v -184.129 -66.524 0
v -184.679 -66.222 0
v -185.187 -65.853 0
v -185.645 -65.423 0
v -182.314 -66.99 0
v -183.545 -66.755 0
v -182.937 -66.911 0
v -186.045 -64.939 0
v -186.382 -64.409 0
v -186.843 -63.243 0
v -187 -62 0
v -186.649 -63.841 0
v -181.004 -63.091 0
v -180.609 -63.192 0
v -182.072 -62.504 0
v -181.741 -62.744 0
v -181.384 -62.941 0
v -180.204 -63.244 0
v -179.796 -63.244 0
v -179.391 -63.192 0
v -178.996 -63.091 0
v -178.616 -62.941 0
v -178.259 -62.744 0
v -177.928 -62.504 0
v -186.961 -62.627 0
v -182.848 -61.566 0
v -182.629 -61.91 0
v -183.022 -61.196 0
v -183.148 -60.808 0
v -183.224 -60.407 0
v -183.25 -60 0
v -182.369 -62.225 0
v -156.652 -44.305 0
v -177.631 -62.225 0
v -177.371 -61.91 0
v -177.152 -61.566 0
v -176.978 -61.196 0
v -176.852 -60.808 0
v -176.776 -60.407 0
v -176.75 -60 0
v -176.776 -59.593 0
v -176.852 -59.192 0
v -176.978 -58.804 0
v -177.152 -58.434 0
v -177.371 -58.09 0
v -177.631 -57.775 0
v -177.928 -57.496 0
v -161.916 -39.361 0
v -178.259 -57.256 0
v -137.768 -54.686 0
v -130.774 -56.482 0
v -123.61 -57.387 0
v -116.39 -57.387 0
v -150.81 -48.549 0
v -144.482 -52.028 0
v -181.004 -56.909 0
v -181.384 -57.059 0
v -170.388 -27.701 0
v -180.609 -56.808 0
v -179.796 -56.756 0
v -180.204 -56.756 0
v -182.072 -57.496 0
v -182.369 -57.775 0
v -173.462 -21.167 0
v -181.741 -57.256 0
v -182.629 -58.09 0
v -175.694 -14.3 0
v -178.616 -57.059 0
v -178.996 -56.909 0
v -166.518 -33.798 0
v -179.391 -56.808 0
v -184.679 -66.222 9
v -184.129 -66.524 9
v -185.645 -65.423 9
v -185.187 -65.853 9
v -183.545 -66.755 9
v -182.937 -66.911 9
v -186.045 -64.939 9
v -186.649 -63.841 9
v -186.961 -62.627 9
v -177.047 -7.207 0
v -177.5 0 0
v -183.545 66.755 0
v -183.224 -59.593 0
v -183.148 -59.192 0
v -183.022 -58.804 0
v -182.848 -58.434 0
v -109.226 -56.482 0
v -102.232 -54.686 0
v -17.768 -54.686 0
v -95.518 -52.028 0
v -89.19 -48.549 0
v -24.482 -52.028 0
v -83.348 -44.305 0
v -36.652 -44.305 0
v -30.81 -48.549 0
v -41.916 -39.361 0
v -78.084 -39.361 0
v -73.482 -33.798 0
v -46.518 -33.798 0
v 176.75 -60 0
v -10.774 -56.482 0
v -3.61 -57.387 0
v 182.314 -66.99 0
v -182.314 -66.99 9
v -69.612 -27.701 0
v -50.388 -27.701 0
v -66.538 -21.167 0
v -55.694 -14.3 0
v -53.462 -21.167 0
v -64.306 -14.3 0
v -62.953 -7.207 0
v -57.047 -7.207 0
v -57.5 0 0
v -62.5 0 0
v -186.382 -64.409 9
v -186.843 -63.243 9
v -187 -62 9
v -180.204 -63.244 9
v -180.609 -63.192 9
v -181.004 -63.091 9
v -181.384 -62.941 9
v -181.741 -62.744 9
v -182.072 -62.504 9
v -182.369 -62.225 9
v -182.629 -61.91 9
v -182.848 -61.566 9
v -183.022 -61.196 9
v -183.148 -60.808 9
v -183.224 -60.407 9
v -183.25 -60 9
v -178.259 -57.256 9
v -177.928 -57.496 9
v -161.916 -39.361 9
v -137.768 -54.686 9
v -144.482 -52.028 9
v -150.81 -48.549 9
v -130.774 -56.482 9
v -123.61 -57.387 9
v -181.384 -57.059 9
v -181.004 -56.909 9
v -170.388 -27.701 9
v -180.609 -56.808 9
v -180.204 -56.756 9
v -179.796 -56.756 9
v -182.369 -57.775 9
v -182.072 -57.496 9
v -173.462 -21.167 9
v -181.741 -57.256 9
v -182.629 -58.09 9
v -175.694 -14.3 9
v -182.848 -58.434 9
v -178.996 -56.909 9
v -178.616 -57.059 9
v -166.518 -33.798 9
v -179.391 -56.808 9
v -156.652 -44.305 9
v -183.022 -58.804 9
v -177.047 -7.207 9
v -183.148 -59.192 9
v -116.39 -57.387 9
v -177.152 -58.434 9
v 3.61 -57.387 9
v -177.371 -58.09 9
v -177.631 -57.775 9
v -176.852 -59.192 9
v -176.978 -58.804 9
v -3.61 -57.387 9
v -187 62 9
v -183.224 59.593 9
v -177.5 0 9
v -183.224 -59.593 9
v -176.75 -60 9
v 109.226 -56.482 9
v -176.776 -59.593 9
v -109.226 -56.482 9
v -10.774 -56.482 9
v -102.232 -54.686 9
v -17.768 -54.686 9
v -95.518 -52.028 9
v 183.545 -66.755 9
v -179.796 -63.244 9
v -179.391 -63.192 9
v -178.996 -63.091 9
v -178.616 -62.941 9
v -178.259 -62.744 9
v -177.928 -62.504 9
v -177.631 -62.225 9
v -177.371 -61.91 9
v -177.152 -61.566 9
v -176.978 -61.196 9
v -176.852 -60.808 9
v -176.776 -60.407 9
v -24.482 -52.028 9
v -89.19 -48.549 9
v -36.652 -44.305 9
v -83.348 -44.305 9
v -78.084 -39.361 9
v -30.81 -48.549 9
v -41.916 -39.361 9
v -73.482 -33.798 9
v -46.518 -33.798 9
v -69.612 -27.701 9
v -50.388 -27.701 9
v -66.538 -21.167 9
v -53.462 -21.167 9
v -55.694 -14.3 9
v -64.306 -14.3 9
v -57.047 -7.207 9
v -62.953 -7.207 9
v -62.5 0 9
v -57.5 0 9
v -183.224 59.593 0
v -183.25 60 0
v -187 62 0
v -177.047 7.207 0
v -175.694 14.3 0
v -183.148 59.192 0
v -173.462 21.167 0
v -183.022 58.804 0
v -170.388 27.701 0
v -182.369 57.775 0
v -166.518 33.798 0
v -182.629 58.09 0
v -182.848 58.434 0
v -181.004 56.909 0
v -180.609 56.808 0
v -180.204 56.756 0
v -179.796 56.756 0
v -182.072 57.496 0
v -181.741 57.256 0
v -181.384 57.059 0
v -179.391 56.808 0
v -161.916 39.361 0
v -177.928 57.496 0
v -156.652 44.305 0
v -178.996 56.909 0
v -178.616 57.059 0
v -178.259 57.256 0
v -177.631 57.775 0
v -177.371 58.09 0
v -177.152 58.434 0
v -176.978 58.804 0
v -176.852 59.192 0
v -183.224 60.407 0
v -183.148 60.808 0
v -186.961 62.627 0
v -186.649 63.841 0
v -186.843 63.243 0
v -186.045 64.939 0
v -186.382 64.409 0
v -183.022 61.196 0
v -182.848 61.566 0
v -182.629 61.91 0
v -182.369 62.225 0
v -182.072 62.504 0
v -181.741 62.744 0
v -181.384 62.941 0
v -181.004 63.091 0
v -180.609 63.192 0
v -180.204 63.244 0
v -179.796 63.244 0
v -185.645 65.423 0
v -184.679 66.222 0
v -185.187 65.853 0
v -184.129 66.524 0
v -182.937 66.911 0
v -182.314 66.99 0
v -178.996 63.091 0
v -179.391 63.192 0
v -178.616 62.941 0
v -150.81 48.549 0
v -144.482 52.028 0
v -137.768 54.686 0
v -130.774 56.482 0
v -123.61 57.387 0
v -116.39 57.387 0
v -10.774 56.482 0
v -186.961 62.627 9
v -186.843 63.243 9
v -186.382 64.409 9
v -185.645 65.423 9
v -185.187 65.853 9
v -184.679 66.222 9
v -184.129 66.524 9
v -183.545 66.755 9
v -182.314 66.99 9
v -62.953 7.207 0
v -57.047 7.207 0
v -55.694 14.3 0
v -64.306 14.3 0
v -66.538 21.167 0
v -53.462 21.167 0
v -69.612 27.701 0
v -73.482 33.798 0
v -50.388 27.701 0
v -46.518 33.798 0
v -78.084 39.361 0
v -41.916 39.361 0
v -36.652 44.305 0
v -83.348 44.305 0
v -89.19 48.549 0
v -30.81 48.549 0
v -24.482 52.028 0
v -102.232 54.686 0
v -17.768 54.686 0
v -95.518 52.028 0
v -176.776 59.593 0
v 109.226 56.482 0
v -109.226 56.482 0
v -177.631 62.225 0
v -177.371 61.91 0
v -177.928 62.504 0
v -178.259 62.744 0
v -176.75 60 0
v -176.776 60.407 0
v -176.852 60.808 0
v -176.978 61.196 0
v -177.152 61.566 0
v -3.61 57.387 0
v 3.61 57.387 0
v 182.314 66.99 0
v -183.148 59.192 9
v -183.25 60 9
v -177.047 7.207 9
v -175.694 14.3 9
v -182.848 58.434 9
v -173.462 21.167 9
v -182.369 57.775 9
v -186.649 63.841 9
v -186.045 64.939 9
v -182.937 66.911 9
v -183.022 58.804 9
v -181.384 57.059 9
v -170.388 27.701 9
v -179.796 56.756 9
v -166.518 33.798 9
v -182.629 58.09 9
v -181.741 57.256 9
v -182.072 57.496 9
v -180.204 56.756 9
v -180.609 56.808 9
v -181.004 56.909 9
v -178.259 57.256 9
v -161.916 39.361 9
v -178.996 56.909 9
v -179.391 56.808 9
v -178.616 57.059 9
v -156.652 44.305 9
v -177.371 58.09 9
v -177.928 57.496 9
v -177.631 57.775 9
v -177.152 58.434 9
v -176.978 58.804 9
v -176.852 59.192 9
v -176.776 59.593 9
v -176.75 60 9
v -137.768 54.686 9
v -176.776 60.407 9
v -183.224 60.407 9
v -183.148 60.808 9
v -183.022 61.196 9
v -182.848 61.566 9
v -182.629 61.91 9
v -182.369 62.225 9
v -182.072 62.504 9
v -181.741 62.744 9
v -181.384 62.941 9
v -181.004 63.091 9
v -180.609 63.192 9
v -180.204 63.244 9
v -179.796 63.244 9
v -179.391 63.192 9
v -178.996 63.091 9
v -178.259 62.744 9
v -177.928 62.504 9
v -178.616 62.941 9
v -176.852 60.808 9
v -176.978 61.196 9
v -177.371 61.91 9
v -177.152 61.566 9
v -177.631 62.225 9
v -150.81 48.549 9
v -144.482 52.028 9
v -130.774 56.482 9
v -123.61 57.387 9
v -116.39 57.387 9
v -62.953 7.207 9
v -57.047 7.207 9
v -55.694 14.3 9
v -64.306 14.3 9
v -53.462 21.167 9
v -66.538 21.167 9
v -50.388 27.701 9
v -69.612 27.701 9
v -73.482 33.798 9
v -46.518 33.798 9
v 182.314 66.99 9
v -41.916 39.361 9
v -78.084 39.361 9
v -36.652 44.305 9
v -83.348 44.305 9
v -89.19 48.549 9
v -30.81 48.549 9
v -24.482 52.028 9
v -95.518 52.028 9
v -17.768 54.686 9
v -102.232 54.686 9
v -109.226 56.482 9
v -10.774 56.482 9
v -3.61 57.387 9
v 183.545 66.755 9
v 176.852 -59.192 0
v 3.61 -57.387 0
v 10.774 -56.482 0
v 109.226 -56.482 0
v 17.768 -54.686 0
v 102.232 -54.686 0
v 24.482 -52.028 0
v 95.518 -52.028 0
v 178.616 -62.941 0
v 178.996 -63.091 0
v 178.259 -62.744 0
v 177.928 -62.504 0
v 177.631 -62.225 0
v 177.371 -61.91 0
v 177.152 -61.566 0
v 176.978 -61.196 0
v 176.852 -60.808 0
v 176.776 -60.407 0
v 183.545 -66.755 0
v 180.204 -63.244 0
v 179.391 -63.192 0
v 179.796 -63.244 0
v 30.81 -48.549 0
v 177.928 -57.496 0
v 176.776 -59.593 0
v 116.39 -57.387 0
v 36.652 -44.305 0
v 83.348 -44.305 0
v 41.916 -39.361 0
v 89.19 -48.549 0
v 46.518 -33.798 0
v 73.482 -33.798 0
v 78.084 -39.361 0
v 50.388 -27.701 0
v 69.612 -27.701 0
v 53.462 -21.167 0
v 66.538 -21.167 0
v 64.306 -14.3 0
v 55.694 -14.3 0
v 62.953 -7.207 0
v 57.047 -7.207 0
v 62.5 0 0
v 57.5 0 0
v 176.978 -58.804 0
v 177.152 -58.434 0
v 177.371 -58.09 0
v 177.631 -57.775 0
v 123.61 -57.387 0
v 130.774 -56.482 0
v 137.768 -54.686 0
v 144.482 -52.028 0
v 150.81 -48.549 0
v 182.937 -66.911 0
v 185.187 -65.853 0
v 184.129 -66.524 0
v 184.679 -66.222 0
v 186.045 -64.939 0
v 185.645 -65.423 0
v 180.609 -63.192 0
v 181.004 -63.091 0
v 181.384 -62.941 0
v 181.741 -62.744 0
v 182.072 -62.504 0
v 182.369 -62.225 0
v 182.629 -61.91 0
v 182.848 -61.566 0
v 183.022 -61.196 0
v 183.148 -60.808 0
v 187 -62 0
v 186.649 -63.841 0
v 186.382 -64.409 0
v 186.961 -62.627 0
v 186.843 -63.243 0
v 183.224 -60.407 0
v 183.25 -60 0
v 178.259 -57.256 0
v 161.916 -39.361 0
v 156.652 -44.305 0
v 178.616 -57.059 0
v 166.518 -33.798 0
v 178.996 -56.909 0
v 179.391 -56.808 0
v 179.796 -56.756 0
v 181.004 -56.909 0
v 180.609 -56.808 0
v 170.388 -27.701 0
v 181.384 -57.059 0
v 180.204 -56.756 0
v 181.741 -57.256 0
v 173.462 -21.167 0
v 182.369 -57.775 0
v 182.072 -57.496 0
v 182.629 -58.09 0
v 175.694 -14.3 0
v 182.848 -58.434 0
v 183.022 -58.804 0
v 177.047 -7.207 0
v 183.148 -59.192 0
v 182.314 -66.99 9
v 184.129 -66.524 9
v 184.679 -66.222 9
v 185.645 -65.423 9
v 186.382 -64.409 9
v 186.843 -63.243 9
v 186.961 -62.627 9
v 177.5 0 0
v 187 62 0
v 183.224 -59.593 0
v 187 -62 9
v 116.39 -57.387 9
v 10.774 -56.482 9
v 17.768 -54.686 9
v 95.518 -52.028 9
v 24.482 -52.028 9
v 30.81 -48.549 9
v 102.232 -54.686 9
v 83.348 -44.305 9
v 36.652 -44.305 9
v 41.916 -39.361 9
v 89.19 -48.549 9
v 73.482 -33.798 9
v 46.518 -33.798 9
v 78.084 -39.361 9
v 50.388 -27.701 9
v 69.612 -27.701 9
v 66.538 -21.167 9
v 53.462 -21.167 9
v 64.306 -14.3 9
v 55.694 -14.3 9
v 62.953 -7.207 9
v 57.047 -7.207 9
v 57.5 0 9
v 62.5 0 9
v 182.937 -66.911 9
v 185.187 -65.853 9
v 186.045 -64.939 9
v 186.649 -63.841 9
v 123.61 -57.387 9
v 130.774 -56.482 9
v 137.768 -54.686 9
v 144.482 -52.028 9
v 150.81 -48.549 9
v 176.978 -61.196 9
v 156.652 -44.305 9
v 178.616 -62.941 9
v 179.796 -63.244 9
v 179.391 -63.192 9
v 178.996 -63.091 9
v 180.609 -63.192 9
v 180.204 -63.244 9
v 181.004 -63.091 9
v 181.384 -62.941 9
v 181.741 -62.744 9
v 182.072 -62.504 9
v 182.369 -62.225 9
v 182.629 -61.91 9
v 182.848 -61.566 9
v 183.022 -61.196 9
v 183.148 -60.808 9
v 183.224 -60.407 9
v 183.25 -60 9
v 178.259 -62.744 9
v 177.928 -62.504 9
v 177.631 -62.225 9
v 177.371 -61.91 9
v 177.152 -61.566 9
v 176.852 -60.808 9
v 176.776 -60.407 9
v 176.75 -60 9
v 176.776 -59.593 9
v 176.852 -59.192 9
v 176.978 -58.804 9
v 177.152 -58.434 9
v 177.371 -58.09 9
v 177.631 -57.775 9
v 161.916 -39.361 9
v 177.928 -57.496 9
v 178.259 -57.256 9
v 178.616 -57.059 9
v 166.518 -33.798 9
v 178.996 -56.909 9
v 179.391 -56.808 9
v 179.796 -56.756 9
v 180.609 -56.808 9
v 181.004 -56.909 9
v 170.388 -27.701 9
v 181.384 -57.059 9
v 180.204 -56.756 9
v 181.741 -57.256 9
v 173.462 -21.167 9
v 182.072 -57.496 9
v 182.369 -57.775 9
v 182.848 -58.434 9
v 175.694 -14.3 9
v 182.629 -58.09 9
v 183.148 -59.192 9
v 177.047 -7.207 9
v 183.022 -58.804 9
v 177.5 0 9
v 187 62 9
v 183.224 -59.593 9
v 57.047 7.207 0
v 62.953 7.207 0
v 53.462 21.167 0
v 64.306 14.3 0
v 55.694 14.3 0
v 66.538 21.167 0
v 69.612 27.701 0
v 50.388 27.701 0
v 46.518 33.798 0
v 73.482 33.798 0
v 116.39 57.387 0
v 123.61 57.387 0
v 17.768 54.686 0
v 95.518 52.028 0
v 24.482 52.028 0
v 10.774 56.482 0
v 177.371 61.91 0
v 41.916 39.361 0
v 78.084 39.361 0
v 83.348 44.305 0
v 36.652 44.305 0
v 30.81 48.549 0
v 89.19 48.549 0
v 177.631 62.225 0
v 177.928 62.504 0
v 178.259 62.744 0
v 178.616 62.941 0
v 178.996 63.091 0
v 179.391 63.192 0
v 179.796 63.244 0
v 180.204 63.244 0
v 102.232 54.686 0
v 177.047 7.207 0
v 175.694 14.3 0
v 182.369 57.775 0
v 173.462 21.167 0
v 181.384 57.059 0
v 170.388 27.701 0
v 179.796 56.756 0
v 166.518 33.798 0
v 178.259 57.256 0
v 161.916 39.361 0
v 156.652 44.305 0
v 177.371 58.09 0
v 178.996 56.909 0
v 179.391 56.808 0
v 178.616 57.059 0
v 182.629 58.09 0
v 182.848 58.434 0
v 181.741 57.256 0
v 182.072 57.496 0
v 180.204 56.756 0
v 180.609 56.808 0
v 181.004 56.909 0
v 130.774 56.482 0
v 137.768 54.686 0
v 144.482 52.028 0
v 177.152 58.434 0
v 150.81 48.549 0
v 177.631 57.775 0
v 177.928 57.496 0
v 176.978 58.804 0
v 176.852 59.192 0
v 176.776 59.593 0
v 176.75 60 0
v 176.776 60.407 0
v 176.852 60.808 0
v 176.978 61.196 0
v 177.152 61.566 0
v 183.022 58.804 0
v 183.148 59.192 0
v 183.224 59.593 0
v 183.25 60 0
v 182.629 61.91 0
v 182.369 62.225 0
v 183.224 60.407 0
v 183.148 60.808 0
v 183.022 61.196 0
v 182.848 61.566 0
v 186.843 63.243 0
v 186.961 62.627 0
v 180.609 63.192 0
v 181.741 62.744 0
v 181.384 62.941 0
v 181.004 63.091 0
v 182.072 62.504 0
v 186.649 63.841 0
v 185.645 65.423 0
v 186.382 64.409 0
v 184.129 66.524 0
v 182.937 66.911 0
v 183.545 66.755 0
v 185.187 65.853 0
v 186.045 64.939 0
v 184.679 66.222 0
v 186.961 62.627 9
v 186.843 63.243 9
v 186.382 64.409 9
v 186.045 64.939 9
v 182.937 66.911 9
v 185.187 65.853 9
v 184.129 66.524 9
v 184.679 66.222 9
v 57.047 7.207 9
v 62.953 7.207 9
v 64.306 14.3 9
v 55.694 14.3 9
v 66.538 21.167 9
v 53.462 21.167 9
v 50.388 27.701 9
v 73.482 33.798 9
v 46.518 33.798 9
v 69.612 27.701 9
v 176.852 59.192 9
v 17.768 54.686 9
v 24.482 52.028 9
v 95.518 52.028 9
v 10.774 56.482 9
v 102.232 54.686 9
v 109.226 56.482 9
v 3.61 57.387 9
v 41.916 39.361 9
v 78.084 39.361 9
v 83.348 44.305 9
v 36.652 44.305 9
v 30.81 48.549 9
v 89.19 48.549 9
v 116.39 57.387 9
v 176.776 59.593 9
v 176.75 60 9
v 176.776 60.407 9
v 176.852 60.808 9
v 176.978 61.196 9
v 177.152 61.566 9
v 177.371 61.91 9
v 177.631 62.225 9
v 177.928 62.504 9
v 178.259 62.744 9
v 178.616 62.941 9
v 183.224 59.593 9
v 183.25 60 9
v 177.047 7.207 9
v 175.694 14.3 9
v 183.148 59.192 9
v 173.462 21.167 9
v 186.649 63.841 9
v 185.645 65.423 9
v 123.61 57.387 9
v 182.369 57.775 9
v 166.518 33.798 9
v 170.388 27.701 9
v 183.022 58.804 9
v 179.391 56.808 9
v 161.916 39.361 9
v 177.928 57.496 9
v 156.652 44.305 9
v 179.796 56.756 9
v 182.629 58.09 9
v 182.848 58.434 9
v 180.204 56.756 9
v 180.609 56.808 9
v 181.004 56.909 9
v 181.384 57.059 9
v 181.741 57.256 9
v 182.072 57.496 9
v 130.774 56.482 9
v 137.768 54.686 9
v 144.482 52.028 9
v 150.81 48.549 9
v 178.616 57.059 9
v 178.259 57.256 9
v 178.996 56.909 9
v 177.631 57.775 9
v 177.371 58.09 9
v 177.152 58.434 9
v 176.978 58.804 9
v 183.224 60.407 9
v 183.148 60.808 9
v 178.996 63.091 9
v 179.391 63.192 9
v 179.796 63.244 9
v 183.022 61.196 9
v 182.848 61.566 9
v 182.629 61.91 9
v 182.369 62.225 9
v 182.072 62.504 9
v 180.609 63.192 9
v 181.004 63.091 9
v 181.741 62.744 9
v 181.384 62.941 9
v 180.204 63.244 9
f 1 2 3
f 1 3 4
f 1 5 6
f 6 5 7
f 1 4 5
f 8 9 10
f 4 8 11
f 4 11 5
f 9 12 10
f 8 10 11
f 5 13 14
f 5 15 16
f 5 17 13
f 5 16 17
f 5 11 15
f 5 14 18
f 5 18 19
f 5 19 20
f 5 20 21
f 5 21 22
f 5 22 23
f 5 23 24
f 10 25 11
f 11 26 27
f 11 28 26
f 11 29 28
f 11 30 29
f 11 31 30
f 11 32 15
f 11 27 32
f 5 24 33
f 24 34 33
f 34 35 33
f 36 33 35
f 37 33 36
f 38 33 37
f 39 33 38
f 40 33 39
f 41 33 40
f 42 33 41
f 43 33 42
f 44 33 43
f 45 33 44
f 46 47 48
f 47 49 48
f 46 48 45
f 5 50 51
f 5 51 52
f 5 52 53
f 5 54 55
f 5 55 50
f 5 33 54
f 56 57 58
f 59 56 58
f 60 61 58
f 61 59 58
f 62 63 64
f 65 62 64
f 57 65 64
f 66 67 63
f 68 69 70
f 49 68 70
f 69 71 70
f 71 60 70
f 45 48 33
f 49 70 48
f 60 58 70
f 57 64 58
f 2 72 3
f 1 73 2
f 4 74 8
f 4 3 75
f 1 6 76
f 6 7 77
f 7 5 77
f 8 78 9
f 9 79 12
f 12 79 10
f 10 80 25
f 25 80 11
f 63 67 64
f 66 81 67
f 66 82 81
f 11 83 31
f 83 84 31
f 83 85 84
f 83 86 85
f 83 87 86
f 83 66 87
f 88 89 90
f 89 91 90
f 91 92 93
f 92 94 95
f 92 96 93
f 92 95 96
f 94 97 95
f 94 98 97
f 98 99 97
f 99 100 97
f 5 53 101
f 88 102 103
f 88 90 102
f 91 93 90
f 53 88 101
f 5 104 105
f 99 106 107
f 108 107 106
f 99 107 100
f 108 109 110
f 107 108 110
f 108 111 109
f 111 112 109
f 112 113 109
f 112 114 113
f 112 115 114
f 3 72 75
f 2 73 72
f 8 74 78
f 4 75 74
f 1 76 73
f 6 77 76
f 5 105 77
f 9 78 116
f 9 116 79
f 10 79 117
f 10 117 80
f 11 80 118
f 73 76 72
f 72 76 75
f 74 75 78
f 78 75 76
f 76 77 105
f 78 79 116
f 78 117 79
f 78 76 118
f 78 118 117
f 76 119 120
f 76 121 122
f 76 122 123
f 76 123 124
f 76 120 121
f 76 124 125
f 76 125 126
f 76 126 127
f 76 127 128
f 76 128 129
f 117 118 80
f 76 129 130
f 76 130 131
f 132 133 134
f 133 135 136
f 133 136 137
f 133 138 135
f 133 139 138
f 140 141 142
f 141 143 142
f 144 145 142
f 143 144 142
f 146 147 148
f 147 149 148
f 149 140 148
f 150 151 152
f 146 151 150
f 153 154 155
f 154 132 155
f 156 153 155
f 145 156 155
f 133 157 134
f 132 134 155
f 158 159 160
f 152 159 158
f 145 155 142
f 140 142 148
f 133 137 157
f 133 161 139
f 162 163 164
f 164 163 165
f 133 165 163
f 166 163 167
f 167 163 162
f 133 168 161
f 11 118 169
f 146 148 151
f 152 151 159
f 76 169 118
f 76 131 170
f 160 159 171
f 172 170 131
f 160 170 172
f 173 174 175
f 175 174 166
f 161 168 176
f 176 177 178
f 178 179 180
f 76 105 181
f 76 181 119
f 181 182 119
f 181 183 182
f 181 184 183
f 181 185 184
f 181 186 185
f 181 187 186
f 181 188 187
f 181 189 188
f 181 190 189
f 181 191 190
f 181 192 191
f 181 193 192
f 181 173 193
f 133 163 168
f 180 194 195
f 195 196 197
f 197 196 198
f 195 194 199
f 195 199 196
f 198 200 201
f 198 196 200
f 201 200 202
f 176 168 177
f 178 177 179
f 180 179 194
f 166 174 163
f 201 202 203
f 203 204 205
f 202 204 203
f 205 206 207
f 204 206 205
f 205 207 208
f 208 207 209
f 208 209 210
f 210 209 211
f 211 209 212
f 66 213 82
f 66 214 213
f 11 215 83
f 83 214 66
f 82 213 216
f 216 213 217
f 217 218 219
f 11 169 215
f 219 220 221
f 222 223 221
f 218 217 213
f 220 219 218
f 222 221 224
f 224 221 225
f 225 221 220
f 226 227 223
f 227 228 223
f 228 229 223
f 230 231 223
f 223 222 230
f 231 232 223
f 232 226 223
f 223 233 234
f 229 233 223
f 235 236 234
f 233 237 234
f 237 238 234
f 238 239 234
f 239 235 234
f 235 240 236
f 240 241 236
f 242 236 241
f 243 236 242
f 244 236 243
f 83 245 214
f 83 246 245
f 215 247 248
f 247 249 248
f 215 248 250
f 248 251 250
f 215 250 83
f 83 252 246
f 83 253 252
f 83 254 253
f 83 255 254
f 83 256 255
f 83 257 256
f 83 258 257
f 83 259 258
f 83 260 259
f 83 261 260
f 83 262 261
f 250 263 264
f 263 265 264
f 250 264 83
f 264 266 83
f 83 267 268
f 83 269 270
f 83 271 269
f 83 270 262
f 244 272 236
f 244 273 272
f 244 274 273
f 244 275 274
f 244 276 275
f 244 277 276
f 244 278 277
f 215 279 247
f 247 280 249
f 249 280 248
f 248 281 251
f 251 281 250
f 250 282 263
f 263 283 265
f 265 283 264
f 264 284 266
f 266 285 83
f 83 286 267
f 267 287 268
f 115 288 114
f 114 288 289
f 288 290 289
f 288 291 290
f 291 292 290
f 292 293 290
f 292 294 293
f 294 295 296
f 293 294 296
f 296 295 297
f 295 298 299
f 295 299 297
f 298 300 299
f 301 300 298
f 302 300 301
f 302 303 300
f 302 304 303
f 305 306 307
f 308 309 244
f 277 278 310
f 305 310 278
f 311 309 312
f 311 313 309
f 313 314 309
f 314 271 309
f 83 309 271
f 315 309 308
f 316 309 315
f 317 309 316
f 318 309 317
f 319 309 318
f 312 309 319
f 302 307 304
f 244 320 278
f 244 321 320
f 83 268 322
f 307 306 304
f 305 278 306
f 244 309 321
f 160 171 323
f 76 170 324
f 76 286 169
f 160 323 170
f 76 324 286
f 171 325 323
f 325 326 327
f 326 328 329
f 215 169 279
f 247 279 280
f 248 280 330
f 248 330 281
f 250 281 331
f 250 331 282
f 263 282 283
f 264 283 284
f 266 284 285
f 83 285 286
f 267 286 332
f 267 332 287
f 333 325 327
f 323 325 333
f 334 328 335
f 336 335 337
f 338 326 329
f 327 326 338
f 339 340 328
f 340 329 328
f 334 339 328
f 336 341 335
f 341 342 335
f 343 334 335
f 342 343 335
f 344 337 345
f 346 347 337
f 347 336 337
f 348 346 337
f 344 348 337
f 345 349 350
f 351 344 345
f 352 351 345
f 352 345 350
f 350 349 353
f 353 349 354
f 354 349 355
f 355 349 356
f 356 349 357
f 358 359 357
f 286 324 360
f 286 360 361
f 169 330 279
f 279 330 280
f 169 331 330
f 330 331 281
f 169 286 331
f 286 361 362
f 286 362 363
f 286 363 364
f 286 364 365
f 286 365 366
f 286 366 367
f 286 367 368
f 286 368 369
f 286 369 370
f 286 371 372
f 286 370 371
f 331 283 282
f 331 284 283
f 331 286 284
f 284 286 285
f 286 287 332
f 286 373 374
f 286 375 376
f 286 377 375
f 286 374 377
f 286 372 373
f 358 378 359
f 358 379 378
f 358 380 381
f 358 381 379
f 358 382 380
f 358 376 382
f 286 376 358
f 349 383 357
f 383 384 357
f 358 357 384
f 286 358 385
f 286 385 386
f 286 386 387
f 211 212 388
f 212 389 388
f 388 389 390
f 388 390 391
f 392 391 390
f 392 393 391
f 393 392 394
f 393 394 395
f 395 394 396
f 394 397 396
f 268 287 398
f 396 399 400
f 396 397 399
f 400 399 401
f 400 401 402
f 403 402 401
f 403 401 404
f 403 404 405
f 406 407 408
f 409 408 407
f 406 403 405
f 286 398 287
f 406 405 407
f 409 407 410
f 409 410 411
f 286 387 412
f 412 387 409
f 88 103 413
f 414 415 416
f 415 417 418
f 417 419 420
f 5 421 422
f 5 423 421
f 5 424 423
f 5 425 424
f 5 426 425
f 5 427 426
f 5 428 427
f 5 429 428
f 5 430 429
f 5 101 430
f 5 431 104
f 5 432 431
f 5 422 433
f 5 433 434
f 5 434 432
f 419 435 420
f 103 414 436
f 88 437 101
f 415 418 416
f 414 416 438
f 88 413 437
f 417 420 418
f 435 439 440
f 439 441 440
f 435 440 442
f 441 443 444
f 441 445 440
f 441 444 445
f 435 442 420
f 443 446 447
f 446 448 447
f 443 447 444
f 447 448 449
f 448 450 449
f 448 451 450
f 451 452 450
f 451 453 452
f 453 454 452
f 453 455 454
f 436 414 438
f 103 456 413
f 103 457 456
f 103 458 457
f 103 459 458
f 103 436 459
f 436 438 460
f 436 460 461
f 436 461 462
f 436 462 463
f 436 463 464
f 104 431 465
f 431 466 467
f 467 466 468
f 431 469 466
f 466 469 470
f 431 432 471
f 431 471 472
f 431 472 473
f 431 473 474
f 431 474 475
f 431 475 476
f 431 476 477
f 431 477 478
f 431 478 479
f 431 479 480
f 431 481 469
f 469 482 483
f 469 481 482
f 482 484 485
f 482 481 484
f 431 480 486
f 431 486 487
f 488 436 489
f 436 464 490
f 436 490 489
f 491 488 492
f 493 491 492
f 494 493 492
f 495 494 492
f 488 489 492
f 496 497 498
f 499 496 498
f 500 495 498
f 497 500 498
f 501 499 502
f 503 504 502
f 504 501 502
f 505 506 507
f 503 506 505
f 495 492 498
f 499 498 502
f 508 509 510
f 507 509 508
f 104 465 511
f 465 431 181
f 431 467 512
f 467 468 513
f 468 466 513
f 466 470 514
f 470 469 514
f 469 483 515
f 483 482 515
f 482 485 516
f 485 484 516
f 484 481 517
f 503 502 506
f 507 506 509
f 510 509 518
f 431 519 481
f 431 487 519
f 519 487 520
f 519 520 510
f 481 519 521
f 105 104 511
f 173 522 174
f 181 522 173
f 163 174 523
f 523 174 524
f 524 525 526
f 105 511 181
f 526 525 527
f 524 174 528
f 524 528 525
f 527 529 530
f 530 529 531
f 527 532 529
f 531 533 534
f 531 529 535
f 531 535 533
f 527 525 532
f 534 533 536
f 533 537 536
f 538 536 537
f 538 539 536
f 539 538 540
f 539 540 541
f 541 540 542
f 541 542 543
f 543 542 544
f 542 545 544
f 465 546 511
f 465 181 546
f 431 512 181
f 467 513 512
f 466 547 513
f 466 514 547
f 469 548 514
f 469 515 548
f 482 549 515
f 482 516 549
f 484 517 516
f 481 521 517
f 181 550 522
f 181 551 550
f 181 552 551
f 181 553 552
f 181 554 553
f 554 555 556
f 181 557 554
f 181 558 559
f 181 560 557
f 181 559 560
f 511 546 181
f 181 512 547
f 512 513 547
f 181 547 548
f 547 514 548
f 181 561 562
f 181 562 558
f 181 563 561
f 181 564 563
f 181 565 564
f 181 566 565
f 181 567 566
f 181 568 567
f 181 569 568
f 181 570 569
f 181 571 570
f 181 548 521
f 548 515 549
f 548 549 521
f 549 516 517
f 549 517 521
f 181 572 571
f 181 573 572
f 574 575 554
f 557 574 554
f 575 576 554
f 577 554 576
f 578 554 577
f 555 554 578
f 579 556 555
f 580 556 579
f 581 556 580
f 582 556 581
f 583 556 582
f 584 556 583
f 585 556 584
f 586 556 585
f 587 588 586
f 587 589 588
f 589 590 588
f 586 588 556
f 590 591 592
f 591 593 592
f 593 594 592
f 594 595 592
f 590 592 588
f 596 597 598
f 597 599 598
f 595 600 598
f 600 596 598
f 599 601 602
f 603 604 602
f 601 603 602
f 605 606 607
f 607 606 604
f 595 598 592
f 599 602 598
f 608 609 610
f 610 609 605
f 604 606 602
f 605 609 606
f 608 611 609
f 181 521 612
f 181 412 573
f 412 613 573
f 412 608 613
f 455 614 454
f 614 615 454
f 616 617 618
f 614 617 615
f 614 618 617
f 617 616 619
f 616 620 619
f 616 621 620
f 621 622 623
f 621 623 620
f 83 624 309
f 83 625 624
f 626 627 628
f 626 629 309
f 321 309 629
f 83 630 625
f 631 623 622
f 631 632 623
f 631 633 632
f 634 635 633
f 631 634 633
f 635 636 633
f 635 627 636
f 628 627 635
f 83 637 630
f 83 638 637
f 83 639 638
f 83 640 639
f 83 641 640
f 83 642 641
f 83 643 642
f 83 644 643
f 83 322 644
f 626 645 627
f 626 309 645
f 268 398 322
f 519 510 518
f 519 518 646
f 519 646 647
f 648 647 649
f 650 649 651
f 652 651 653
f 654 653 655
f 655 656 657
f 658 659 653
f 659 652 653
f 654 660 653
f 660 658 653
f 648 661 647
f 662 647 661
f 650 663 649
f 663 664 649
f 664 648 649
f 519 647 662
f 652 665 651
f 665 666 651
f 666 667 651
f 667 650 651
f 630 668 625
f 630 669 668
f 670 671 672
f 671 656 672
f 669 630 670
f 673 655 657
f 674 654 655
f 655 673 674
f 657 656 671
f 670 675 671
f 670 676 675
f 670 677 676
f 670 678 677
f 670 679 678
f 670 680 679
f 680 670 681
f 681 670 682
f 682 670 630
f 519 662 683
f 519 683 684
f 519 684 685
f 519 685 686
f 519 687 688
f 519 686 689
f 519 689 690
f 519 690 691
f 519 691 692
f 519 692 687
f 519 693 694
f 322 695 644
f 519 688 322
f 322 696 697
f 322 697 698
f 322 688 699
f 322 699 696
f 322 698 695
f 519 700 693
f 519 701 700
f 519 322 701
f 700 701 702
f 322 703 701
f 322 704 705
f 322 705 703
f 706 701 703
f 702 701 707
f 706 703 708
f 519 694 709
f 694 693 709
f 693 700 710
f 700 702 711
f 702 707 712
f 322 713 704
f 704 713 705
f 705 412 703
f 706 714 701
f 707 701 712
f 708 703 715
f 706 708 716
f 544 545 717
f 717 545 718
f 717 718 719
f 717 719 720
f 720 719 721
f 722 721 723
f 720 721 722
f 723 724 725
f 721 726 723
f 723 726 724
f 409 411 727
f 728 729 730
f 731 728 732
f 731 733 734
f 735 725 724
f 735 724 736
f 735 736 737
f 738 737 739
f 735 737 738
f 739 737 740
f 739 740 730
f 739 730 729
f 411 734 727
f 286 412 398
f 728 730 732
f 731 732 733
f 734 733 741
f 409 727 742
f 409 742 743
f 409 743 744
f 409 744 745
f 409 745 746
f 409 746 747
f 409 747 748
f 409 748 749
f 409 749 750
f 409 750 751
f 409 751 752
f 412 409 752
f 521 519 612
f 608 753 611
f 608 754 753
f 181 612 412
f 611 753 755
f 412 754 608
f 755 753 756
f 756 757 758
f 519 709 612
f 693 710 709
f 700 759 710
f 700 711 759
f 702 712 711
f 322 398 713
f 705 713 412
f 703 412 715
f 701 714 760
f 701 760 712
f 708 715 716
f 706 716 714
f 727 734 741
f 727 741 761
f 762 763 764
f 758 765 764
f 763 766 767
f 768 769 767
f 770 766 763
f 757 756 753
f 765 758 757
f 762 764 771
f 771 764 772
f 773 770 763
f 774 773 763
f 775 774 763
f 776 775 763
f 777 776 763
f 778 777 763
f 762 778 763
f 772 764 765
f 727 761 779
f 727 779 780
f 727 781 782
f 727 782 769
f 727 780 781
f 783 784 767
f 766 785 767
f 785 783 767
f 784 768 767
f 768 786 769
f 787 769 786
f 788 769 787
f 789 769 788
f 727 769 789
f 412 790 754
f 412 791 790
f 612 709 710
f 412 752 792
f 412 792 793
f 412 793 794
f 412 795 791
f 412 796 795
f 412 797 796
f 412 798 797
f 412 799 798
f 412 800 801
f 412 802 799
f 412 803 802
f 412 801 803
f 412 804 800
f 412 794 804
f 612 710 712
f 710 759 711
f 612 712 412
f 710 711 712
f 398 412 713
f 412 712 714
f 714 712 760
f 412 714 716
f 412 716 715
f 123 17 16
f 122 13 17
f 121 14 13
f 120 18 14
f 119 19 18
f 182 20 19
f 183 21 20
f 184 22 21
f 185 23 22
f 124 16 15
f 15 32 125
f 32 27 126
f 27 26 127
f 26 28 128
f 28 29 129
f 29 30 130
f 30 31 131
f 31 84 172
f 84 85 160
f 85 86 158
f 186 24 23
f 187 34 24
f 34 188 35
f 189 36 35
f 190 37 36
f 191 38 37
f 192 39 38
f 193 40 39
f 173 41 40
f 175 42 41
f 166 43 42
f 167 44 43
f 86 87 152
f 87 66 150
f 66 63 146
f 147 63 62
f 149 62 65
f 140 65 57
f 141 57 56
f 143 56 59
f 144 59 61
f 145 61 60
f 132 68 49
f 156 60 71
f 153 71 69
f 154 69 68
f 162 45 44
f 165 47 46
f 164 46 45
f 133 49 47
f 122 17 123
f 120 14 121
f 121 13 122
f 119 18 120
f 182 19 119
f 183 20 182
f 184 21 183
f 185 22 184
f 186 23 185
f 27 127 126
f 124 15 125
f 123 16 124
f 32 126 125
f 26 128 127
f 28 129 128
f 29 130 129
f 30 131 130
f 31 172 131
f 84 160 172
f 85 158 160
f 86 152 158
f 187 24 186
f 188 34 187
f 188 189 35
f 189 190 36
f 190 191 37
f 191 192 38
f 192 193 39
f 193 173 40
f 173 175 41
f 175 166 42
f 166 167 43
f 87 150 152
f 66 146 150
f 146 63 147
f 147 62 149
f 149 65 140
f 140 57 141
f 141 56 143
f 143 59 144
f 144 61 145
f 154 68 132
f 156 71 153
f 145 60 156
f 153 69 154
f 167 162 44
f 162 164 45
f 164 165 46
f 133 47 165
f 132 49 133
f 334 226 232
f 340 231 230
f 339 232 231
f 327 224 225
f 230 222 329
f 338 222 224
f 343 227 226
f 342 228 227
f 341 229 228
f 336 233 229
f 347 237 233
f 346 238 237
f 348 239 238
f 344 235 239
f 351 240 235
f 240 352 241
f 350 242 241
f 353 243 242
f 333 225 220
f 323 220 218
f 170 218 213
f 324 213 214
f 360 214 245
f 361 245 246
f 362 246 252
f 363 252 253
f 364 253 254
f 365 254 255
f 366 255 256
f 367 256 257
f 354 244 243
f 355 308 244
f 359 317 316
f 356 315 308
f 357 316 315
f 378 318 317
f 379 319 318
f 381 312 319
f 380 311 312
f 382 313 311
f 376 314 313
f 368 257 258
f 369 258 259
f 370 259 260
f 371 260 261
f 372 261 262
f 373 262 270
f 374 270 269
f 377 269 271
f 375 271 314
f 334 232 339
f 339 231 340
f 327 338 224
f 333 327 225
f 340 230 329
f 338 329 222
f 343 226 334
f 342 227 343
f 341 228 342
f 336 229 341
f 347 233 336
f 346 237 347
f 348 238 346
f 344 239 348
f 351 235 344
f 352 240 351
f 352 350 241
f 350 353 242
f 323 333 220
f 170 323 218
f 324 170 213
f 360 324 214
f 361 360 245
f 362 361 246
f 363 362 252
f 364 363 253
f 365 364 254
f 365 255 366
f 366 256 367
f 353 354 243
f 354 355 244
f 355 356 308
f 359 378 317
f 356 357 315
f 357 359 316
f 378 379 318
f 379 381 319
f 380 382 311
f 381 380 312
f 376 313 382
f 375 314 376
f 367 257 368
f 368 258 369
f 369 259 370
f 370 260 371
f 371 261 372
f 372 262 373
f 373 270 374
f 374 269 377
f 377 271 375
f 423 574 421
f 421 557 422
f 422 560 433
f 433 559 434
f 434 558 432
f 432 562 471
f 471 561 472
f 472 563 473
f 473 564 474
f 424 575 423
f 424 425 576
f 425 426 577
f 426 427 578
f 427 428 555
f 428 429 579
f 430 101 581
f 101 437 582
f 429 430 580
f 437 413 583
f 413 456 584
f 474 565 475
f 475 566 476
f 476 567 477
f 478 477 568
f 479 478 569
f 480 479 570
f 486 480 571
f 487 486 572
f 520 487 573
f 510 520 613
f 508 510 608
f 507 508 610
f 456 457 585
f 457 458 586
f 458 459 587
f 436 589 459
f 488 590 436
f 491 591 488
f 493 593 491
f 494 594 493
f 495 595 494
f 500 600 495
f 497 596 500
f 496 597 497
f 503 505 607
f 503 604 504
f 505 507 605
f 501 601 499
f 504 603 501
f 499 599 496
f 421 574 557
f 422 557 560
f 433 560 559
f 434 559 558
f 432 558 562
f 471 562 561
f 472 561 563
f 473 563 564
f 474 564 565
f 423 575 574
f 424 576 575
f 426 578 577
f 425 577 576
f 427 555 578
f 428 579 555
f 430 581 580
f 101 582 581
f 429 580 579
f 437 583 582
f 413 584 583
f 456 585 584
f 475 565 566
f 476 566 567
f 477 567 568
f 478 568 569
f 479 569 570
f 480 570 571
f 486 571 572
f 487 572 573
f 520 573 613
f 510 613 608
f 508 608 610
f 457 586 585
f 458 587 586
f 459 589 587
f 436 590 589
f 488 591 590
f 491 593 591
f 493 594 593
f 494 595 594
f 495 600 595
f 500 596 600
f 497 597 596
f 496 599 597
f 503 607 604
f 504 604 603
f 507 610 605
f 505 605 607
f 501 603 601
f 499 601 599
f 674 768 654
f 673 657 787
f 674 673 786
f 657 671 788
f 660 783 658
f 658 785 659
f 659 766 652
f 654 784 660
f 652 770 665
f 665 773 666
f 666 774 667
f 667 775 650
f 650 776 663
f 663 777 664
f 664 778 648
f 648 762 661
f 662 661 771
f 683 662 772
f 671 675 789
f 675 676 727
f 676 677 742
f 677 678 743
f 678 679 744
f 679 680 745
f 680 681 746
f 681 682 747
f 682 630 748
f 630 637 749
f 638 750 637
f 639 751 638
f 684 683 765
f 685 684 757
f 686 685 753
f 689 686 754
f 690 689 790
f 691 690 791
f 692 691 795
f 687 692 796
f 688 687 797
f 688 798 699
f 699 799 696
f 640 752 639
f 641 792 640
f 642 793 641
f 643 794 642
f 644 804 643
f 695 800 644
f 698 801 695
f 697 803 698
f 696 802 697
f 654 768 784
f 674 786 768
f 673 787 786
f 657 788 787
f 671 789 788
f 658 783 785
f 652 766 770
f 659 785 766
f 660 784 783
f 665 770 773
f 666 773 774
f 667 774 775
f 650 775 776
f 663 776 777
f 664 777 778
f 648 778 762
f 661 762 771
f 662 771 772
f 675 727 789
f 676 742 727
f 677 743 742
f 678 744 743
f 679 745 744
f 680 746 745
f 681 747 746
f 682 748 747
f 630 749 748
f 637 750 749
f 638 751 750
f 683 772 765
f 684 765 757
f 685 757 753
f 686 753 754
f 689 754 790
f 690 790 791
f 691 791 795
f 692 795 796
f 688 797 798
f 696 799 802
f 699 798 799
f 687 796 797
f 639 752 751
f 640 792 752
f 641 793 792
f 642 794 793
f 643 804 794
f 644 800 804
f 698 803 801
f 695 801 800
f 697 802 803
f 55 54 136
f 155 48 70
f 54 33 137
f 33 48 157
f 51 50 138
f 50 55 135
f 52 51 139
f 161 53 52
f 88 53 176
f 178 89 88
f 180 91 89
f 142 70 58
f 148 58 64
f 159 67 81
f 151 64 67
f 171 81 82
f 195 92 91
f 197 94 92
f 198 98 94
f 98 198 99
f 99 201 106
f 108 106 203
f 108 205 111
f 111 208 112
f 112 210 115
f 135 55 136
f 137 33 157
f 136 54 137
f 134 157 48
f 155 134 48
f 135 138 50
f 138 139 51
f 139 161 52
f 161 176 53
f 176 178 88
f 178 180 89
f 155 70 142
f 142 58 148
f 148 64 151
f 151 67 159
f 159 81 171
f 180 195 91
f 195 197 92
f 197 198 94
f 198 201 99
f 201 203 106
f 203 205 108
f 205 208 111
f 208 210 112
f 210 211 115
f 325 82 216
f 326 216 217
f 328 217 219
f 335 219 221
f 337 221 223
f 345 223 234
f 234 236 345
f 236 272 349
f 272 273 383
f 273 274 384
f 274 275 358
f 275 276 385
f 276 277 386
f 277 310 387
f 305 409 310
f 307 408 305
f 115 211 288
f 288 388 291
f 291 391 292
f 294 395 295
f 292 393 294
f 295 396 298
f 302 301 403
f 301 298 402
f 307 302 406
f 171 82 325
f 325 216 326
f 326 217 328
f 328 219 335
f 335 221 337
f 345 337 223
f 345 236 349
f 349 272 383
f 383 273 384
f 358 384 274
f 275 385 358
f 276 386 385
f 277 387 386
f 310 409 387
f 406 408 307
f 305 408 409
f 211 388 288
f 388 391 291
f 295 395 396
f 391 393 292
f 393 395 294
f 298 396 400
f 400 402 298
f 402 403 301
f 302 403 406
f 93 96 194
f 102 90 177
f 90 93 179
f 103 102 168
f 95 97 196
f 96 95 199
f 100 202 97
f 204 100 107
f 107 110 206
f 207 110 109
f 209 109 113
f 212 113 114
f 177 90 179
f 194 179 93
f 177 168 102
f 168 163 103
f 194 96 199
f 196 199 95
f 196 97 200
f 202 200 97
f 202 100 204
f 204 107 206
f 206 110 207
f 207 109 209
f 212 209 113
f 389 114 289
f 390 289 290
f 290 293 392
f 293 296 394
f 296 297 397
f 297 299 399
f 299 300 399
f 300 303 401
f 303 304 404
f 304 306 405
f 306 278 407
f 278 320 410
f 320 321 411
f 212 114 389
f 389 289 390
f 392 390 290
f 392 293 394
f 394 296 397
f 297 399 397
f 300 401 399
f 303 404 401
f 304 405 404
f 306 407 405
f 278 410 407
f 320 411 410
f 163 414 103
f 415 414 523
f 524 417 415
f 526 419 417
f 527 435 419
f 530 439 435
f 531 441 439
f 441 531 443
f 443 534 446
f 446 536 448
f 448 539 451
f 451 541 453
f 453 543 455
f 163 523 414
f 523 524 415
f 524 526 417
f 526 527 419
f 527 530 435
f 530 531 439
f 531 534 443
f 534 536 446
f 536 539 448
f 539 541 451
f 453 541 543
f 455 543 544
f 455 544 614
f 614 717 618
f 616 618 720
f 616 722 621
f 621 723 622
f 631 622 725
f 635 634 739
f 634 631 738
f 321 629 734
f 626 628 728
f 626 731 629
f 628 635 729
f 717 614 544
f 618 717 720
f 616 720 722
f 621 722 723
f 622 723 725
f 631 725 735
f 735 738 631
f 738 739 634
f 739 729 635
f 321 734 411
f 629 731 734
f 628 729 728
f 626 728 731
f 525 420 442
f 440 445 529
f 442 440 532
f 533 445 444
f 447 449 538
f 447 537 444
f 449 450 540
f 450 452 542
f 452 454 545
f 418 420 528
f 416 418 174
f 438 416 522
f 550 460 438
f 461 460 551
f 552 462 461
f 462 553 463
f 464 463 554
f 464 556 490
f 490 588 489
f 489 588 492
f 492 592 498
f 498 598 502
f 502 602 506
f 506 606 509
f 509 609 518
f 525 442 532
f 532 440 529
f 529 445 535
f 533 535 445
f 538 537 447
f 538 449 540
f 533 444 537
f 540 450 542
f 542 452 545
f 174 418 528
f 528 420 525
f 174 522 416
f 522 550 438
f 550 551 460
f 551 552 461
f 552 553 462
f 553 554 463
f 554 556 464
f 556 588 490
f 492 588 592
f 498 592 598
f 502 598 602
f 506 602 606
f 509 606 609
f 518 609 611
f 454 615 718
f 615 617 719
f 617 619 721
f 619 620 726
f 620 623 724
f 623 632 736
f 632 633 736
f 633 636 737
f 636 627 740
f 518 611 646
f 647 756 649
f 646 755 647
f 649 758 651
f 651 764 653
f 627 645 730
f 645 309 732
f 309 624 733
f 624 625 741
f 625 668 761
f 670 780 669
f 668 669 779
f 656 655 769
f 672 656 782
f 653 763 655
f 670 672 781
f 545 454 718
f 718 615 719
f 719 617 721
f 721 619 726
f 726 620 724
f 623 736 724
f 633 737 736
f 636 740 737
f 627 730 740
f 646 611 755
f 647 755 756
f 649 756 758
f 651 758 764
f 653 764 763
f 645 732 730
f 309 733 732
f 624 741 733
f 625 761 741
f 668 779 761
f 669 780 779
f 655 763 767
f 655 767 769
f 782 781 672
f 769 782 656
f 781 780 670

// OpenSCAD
$fn = 50;

difference() {
	union() {
		hull() {
			translate(v = [-182.0, 62.0, 0]) {
				cylinder(h = 9, r = 5);
			}
			translate(v = [182.0, 62.0, 0]) {
				cylinder(h = 9, r = 5);
			}
			translate(v = [-182.0, -62.0, 0]) {
				cylinder(h = 9, r = 5);
			}
			translate(v = [182.0, -62.0, 0]) {
				cylinder(h = 9, r = 5);
			}
		}
	}
	union() {
		translate(v = [-180.0, -60.0, -100.0]) {
			cylinder(h = 200, r = 3.25);
		}
		translate(v = [-180.0, 60.0, -100.0]) {
			cylinder(h = 200, r = 3.25);
		}
		translate(v = [180.0, -60.0, -100.0]) {
			cylinder(h = 200, r = 3.25);
		}
		translate(v = [180.0, 60.0, -100.0]) {
			cylinder(h = 200, r = 3.25);
		}
		translate(v = [-180.0, -60.0, -100.0]) {
			cylinder(h = 200, r = 1.8);
		}
		translate(v = [-180.0, 60.0, -100.0]) {
			cylinder(h = 200, r = 1.8);
		}
		translate(v = [180.0, -60.0, -100.0]) {
			cylinder(h = 200, r = 1.8);
		}
		translate(v = [180.0, 60.0, -100.0]) {
			cylinder(h = 200, r = 1.8);
		}
		translate(v = [-120.0, 0, 0.0]) {
			cylinder(h = 9, r = 57.5);
		}
		cylinder(h = 9, r = 57.5);
		translate(v = [120.0, 0, 0.0]) {
			cylinder(h = 9, r = 57.5);
		}
	}
}
